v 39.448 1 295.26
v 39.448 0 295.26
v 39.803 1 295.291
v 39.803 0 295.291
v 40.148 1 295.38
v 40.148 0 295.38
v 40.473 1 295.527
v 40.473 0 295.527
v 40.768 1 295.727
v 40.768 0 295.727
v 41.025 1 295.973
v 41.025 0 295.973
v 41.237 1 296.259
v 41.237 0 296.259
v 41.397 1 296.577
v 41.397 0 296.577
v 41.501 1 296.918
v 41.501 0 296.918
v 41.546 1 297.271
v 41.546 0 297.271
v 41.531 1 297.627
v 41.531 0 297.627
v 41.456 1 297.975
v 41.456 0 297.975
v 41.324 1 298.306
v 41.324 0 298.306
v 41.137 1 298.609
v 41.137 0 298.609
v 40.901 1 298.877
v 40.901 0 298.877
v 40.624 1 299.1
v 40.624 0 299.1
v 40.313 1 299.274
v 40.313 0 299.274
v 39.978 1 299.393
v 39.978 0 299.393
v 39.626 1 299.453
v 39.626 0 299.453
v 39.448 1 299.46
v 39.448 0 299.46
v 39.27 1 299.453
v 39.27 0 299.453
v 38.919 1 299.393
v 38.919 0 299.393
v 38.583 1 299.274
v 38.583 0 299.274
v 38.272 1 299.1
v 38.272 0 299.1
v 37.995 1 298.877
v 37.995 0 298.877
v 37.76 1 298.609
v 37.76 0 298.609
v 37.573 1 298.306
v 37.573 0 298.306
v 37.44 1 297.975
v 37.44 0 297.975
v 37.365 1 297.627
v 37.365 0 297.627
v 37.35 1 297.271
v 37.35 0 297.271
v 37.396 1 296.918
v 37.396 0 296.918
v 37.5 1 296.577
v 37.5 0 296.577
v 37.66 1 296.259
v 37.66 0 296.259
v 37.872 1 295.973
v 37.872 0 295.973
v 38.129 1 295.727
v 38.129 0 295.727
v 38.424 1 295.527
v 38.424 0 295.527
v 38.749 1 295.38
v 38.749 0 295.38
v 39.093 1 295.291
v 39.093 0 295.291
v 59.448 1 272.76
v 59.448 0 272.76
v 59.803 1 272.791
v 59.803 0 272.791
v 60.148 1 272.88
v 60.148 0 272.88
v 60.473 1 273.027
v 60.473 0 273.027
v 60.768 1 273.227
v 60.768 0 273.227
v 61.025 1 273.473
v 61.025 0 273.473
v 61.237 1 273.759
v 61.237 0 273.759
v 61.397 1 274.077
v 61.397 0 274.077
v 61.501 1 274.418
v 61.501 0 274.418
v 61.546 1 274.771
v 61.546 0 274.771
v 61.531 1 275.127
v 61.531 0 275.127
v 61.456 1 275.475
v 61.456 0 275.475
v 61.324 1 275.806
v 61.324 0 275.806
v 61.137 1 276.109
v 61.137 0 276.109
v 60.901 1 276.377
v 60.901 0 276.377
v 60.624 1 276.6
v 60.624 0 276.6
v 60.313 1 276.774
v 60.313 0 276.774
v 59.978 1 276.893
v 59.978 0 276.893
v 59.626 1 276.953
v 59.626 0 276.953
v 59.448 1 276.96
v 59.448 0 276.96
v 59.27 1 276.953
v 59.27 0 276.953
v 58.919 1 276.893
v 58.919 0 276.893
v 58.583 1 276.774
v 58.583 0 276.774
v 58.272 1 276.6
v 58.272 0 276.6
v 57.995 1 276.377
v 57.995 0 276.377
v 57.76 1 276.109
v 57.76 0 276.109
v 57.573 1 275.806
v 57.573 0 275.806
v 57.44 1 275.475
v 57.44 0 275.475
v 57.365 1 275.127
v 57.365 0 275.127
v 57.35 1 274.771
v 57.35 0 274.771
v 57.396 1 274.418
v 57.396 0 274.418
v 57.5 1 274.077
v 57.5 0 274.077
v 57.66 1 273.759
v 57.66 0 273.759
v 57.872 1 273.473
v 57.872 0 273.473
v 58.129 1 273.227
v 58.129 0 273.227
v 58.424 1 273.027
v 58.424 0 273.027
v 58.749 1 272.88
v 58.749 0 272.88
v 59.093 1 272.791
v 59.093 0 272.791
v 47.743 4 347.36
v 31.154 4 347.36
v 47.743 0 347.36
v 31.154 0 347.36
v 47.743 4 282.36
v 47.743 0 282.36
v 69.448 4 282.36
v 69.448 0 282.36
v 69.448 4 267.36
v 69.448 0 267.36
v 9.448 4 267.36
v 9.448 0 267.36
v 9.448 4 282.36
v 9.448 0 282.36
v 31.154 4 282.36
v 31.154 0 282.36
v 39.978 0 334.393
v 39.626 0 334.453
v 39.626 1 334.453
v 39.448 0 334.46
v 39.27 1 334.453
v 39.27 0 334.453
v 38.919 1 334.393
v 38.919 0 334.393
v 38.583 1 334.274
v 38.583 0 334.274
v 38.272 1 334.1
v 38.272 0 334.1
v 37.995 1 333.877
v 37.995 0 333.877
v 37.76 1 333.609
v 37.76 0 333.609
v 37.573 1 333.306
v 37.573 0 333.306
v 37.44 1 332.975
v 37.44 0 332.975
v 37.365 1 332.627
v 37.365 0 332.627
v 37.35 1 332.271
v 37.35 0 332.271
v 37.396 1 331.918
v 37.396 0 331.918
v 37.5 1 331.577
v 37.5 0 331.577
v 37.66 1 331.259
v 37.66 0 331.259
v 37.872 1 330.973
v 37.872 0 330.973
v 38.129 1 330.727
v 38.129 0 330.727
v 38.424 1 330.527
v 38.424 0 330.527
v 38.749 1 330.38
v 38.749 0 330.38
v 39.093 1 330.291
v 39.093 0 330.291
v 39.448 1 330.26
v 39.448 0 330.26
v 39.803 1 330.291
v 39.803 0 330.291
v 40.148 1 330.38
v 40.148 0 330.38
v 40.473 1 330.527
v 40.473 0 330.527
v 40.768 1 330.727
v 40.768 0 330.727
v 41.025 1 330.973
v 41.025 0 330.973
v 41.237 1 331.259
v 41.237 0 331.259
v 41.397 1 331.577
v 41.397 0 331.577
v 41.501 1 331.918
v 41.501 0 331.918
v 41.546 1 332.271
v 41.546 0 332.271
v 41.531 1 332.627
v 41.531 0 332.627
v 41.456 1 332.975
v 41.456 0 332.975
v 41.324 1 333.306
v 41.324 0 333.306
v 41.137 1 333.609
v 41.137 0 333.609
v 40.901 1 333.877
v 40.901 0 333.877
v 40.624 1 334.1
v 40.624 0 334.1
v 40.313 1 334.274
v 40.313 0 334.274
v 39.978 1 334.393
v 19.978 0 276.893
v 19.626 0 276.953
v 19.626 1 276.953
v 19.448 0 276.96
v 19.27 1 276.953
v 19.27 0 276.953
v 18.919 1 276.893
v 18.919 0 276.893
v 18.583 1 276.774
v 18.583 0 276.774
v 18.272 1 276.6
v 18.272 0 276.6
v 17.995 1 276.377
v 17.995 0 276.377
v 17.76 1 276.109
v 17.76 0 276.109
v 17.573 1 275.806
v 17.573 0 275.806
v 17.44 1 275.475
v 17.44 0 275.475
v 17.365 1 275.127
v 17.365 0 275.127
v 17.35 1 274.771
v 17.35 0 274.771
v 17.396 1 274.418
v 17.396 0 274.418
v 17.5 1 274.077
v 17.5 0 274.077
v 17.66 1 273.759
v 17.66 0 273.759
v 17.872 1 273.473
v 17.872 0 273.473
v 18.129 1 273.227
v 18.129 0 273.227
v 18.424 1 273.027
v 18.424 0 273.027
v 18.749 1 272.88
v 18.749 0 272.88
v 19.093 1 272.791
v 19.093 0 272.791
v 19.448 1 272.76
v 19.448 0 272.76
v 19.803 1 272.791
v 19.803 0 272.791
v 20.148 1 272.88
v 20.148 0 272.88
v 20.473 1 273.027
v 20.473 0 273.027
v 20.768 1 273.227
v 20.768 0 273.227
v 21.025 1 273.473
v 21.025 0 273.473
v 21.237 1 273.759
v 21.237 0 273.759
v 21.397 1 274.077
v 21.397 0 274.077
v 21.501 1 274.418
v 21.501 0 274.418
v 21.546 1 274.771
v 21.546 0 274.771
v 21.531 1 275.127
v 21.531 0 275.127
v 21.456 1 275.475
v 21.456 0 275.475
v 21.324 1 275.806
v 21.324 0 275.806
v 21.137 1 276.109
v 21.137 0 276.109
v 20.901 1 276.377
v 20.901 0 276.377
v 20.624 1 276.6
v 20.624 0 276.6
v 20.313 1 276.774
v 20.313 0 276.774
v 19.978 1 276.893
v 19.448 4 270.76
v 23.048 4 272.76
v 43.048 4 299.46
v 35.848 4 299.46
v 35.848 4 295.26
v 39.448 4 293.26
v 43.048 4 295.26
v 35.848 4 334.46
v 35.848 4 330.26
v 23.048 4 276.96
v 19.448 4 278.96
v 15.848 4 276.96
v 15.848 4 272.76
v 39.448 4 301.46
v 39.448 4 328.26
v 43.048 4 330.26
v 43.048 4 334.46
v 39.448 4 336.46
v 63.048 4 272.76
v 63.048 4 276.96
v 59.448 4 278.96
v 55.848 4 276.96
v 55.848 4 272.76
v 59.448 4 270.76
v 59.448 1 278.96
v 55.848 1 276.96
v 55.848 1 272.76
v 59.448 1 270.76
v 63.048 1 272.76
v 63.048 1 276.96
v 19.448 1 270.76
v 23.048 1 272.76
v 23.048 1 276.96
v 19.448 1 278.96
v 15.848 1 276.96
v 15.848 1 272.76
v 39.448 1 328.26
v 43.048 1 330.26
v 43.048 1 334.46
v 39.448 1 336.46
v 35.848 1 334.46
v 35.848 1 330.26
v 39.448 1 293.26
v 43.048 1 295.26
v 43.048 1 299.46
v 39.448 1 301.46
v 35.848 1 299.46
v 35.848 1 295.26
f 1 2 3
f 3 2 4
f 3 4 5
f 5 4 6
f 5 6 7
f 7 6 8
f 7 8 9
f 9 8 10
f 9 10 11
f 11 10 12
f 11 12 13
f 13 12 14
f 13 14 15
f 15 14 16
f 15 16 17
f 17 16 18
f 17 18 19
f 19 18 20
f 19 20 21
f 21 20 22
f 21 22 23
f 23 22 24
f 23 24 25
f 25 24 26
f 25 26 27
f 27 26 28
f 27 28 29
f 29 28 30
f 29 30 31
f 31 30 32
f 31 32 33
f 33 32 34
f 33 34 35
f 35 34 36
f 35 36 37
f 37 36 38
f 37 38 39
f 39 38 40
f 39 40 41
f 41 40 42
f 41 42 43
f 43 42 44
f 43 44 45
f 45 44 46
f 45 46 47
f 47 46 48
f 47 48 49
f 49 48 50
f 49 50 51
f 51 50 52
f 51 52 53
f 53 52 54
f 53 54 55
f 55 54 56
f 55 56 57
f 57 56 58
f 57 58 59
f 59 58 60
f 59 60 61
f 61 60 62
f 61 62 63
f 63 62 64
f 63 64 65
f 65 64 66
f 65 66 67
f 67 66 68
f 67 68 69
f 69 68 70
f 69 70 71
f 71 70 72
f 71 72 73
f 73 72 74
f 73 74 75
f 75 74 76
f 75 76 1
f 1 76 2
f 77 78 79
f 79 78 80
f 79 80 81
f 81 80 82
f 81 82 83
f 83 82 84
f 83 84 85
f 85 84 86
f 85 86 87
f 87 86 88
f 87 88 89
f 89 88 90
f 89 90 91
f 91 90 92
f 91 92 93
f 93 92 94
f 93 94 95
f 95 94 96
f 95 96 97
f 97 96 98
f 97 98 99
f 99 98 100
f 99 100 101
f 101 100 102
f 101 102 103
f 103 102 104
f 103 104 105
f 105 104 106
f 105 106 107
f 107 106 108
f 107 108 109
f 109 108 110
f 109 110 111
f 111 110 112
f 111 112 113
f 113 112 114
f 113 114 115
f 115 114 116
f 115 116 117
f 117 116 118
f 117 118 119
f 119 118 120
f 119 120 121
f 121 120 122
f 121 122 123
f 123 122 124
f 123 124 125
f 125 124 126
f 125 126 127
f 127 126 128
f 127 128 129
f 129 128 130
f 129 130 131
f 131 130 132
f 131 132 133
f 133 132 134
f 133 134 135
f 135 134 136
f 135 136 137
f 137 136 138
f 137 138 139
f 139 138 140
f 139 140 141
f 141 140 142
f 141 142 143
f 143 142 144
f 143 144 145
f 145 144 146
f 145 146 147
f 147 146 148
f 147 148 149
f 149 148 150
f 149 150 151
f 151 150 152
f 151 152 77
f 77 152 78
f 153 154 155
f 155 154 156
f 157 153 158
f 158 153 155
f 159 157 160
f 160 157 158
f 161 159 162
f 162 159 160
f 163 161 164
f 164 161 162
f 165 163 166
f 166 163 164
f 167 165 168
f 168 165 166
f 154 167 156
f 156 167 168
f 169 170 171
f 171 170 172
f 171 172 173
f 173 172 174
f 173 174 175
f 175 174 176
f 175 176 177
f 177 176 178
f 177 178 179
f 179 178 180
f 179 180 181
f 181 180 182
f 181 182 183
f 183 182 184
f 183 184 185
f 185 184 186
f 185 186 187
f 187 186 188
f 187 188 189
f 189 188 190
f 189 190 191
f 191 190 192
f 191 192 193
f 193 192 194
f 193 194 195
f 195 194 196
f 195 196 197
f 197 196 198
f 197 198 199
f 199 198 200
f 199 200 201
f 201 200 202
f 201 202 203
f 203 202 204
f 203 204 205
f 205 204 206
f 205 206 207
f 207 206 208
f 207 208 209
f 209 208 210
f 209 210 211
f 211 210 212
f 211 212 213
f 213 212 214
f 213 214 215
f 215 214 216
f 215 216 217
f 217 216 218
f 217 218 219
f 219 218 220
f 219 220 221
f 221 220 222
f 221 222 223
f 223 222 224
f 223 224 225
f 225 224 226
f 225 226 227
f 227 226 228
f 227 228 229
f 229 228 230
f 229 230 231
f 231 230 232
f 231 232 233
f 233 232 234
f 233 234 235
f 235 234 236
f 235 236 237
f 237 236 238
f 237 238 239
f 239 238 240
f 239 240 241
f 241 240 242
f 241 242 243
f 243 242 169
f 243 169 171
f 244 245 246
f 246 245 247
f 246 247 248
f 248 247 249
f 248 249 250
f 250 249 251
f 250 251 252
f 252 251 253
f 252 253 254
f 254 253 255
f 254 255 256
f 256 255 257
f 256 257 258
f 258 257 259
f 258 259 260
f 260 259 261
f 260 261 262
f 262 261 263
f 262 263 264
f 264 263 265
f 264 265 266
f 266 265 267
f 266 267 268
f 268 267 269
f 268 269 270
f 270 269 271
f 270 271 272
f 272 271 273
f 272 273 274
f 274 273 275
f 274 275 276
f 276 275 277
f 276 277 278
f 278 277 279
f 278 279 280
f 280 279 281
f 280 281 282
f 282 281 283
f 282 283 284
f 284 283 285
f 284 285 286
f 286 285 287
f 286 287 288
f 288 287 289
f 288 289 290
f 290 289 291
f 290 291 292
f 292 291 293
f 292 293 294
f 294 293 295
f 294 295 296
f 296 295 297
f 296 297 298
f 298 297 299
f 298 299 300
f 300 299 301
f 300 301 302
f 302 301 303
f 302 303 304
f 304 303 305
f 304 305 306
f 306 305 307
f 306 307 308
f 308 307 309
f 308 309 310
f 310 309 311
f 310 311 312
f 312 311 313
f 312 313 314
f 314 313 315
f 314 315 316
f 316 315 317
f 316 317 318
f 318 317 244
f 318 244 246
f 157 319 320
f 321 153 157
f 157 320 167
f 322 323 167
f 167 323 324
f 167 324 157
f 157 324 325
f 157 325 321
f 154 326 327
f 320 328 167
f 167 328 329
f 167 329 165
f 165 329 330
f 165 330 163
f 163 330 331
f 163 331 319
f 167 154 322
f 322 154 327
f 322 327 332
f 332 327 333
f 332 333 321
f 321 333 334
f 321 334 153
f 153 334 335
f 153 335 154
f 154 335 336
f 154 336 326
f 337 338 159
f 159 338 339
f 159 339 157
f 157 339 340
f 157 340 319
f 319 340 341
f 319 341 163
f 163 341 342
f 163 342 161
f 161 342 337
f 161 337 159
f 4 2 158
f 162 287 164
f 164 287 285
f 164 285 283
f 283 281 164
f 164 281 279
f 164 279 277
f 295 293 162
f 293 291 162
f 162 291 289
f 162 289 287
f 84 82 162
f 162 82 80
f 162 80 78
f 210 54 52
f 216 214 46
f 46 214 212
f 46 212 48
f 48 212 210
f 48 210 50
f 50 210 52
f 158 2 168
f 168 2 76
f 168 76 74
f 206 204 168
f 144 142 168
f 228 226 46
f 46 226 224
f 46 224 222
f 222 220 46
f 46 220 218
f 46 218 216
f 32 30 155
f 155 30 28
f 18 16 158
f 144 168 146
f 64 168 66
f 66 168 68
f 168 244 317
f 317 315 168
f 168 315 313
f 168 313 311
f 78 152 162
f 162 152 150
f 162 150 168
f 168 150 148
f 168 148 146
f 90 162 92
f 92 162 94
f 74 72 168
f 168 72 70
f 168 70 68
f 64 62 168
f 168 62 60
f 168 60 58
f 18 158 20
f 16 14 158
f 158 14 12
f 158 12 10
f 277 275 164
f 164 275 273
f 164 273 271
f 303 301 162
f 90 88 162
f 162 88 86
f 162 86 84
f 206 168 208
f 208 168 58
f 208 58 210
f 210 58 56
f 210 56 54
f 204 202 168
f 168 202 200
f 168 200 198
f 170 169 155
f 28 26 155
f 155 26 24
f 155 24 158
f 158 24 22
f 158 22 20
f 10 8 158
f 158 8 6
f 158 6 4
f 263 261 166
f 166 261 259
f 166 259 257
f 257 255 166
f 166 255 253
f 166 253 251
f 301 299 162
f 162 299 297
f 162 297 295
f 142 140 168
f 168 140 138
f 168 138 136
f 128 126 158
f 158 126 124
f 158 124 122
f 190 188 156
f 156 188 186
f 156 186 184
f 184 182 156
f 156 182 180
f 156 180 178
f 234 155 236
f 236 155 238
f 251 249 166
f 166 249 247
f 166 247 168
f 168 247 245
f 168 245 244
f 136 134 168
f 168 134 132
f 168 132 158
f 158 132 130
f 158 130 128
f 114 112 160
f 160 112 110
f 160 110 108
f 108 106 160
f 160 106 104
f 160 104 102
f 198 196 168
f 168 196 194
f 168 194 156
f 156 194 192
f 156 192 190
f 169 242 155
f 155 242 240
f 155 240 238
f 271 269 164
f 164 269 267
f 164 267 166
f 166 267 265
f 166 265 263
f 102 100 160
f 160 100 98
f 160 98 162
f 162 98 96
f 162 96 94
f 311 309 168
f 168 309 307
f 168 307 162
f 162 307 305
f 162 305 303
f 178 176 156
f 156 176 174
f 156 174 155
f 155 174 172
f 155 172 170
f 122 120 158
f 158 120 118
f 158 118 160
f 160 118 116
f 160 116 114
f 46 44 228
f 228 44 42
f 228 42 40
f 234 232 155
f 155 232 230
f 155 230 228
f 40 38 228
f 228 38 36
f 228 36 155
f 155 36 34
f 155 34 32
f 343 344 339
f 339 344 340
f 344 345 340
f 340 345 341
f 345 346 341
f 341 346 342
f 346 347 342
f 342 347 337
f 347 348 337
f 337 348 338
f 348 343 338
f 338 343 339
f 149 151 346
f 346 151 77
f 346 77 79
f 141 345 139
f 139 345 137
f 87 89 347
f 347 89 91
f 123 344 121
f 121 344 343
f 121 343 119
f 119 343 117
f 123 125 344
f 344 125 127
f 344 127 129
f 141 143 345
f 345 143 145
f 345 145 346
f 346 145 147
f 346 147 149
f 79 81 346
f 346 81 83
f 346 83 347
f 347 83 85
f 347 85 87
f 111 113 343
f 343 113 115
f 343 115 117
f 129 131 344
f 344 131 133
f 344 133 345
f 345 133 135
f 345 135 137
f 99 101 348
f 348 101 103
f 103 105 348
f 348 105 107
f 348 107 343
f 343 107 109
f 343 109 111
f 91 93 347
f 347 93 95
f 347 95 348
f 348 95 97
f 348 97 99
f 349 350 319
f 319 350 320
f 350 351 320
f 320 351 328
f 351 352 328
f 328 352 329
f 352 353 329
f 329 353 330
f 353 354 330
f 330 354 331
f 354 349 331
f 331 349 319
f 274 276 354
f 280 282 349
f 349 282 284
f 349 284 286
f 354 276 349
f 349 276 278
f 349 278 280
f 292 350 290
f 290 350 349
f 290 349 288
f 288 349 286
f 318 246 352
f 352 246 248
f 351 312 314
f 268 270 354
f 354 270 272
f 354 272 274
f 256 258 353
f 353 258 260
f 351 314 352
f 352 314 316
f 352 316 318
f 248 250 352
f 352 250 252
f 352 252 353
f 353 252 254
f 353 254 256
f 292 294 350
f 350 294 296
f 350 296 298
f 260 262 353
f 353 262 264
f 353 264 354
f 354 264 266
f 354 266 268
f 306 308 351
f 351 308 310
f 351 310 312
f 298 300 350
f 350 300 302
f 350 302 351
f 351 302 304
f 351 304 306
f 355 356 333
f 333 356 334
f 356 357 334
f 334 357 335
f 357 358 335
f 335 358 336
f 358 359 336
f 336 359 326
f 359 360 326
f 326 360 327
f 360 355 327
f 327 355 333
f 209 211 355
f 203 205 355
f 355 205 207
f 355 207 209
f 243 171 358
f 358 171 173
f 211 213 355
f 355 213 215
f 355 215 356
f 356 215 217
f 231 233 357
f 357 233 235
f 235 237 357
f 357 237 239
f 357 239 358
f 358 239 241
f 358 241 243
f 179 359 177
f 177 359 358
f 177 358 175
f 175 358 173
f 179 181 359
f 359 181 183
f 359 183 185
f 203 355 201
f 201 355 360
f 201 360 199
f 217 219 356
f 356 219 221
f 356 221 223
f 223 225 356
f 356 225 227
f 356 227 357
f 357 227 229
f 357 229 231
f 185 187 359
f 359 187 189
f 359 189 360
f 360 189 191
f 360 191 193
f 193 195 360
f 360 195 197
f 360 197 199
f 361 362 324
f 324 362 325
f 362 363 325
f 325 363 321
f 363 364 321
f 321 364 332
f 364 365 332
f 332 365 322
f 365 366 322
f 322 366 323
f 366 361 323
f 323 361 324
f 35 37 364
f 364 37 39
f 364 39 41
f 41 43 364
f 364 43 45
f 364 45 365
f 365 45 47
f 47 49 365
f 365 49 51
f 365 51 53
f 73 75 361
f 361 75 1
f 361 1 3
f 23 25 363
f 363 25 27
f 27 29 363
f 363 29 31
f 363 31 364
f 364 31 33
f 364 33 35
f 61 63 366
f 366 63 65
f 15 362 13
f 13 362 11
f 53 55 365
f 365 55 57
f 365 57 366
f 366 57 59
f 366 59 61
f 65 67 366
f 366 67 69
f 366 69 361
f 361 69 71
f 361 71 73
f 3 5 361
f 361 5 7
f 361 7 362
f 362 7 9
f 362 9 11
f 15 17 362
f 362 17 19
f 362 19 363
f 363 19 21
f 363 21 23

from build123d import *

# Parameters (mm, degrees)
SKETCH3_W           = 16.588644014
SKETCH3_H           = 65
SKETCH3_R           = 2.1
SKETCH3_W_2         = 60
SKETCH3_H_2         = 15
BOSS_EXTRUDE1_DEPTH = 4
CUT_EXTRUDE1_DEPTH  = 3
CUT_EXTRUDE2_DEPTH  = 3


with BuildPart() as part:
    # Sketch3 → Boss-Extrude1 (new body)
    with BuildSketch(Plane(origin=(0, 0, 0), x_dir=(1, 0, 0), z_dir=(0, 1, 0))):
        with Locations((39.448385229, -314.860414745)):
            Rectangle(SKETCH3_W, SKETCH3_H)
        with Locations((39.448385229, -332.360414745)):
            Circle(SKETCH3_R, mode=Mode.SUBTRACT)
        with Locations((39.448385229, -297.360414745)):
            Circle(SKETCH3_R, mode=Mode.SUBTRACT)
        with Locations((39.448385229, -274.860414745)):
            Rectangle(SKETCH3_W_2, SKETCH3_H_2)
        with Locations((59.448385229, -274.860414745)):
            Circle(SKETCH3_R, mode=Mode.SUBTRACT)
        with Locations((19.448385229, -274.860414745)):
            Circle(SKETCH3_R, mode=Mode.SUBTRACT)
    extrude(amount=BOSS_EXTRUDE1_DEPTH)

    # Sketch4 → Cut-Extrude1 (cut)
    with BuildSketch(Plane(origin=(0, 4, 0), x_dir=(1, 0, 0), z_dir=(0, 1, 0))):
        Polygon((15.848385229, -276.960414745), (15.848385229, -272.760414745), (19.448385229, -270.760414745), (23.048385229, -272.760414745), (23.048385229, -276.960414745), (19.448385229, -278.960414745), align=None)
        Polygon((55.848385229, -276.960414745), (55.848385229, -272.760414745), (59.448385229, -270.760414745), (63.048385229, -272.760414745), (63.048385229, -276.960414745), (59.448385229, -278.960414745), align=None)
    extrude(amount=-CUT_EXTRUDE1_DEPTH, mode=Mode.SUBTRACT)

    # Sketch5 → Cut-Extrude2 (cut)
    with BuildSketch(Plane(origin=(0, 4, 0), x_dir=(1, 0, 0), z_dir=(0, 1, 0))):
        Polygon((39.448385229, -301.460414745), (43.048385229, -299.460414745), (43.048385229, -295.260414745), (39.448385229, -293.260414745), (35.848385229, -295.260414745), (35.848385229, -299.460414745), align=None)
        Polygon((39.448385229, -328.260414745), (35.848385229, -330.260414745), (35.848385229, -334.460414745), (39.448385229, -336.460414745), (43.048385229, -334.460414745), (43.048385229, -330.260414745), align=None)
    extrude(amount=-CUT_EXTRUDE2_DEPTH, mode=Mode.SUBTRACT)


solid = part.part
